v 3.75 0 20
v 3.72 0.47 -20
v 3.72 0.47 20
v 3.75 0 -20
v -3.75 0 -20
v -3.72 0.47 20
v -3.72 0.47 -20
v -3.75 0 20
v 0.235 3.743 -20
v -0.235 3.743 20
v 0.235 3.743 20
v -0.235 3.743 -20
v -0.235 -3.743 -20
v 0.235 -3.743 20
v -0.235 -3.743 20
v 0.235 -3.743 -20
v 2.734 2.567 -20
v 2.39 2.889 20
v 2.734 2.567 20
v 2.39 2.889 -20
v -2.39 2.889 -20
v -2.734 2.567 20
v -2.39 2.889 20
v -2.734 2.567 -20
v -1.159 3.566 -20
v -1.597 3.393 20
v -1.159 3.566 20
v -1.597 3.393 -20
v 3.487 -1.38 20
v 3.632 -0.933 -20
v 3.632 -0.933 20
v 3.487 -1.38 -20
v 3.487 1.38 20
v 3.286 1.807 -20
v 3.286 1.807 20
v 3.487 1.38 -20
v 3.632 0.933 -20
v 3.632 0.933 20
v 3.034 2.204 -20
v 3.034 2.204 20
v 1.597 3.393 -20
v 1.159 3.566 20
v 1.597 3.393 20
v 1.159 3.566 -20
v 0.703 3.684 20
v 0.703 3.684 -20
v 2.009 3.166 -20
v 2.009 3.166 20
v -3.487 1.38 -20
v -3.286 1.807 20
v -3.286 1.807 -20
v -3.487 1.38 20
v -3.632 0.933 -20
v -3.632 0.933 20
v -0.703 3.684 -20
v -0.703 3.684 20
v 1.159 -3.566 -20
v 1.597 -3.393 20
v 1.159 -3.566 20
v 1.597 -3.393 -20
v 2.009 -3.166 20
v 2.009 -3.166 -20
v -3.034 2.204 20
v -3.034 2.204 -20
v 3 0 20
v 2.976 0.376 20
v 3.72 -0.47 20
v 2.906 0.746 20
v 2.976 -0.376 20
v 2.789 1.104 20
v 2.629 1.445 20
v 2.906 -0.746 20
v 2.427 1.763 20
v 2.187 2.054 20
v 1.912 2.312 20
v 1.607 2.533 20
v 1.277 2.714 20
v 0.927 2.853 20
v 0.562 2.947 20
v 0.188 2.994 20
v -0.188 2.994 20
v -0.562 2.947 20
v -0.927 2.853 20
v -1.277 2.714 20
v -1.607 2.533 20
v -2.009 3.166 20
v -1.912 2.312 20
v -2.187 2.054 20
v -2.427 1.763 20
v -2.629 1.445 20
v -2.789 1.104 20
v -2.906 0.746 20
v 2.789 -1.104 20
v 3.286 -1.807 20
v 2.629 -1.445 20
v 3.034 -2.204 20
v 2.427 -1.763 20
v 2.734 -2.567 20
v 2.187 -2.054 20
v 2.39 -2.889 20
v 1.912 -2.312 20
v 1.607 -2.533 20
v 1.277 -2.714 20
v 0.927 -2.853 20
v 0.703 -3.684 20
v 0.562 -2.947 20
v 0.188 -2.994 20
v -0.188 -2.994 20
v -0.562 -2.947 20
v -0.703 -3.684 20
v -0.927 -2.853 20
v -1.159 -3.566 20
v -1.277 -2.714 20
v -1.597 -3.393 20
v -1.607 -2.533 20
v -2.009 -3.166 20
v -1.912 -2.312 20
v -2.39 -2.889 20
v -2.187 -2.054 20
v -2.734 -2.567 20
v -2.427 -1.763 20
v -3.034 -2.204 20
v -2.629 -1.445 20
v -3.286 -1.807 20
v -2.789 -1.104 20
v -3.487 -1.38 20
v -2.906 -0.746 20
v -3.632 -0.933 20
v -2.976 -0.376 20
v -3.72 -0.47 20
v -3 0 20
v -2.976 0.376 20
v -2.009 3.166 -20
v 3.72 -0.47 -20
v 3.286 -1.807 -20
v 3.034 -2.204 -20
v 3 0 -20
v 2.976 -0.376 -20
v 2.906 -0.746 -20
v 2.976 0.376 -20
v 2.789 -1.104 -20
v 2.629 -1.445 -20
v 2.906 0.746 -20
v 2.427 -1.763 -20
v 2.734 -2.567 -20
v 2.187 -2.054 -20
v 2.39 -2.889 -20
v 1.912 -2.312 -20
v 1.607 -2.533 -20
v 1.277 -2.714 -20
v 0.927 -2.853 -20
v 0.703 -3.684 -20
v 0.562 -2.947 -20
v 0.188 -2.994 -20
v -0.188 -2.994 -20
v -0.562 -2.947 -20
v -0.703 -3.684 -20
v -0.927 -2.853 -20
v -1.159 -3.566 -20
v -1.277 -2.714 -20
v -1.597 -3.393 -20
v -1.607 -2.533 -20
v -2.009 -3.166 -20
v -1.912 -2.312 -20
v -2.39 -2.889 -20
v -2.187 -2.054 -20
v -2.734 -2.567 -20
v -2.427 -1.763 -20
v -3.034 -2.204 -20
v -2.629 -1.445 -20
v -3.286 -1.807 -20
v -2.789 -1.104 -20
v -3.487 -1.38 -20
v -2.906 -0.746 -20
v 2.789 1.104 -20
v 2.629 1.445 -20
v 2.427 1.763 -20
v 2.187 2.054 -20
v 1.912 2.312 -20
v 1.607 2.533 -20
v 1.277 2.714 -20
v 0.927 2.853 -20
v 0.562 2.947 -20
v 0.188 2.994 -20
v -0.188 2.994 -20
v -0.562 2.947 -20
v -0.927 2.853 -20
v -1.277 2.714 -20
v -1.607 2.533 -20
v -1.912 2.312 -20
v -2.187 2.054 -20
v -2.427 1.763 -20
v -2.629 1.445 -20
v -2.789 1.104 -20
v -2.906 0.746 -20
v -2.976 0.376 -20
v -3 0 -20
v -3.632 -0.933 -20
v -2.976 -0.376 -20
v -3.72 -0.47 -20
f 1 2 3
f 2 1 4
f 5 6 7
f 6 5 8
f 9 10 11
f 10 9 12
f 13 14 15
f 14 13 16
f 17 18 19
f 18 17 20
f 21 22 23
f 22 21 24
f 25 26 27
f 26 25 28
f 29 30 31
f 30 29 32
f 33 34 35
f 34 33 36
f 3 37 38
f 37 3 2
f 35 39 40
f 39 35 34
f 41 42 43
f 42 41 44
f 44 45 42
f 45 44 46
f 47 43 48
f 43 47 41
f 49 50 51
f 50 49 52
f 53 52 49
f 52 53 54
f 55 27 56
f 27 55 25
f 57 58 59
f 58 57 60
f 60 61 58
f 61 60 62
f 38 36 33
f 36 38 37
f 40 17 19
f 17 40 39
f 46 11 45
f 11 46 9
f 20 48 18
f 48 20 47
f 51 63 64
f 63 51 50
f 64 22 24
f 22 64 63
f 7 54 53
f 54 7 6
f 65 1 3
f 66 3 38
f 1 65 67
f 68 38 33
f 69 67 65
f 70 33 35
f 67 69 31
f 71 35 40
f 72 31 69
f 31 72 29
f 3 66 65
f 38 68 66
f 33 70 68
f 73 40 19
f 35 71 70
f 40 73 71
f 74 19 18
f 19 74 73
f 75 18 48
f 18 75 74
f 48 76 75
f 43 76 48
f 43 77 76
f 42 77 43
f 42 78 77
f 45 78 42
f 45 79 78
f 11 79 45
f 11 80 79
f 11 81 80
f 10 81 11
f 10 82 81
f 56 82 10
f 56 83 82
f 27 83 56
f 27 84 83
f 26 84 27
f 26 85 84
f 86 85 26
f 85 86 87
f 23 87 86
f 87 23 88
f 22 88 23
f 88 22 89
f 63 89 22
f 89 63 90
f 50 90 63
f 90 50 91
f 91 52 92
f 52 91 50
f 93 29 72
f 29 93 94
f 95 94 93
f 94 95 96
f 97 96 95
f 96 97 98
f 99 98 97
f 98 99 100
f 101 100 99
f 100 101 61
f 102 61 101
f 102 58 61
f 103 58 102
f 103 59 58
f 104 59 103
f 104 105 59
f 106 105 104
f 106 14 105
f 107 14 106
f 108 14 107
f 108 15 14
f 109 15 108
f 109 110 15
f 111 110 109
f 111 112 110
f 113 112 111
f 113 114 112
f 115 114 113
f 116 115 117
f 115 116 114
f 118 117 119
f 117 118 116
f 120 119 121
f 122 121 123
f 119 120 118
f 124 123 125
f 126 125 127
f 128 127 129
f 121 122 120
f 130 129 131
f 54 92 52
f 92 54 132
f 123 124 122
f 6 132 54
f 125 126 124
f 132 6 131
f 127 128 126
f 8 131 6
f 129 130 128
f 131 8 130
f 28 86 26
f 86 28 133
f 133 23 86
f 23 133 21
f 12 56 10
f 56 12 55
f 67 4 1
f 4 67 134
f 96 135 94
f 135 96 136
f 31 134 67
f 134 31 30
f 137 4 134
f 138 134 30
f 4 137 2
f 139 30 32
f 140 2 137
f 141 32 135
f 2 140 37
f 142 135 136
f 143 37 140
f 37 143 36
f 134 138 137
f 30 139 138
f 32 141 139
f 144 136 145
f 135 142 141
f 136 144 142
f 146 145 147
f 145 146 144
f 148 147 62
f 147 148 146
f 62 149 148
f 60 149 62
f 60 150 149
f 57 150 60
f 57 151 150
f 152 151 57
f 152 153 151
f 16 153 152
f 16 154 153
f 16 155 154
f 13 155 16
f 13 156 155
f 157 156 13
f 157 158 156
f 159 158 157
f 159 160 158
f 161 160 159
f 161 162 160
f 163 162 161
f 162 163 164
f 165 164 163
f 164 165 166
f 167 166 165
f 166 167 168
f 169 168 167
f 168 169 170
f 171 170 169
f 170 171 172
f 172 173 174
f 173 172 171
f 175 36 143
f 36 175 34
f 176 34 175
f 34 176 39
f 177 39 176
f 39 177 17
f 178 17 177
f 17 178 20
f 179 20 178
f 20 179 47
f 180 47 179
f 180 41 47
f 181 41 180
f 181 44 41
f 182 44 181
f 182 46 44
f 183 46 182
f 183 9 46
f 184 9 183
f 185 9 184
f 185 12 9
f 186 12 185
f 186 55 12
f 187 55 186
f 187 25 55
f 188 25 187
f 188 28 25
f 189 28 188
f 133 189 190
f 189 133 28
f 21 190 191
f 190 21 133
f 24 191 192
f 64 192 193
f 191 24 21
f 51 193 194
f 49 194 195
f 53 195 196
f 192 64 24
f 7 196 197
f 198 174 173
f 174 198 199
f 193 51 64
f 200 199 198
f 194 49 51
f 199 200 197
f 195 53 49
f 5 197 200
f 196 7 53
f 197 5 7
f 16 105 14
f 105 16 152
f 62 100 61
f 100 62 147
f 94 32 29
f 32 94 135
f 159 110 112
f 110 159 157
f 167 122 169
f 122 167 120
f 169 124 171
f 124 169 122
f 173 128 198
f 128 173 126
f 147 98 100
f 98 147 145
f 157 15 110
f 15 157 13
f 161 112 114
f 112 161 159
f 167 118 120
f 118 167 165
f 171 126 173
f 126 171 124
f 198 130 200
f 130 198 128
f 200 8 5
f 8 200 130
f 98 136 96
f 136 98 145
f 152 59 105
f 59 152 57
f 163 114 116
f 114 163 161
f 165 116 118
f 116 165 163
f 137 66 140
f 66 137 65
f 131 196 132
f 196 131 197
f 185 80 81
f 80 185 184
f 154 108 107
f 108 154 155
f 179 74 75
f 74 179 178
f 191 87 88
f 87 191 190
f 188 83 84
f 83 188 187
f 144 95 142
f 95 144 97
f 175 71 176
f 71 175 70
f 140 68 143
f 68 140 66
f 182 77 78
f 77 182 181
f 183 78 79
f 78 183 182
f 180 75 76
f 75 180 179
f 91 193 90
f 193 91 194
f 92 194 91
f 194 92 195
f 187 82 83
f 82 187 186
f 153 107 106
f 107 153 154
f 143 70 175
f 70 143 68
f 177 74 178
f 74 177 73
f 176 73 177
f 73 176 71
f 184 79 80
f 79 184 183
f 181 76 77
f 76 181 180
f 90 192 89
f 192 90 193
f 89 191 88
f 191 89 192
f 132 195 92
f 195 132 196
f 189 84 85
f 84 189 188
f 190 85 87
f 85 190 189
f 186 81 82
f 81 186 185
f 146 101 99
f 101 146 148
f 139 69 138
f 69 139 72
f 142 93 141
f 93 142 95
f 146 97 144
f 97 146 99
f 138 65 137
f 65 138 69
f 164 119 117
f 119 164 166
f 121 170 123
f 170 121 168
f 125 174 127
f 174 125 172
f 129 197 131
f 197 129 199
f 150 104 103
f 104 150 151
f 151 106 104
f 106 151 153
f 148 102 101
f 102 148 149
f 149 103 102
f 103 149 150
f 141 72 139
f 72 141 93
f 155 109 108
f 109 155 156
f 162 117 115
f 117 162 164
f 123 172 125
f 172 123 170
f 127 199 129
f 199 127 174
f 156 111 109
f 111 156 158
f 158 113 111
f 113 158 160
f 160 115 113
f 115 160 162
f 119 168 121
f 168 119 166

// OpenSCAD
$fn = 50;


difference() {
	union() {
		translate(v = [0, 0, -20.0000000000]) {
			cylinder(h = 40, r = 3.7500000000);
		}
	}
	union() {
		translate(v = [0, 0, -100.0000000000]) {
			cylinder(h = 200, r = 3.0000000000);
		}
	}
}
